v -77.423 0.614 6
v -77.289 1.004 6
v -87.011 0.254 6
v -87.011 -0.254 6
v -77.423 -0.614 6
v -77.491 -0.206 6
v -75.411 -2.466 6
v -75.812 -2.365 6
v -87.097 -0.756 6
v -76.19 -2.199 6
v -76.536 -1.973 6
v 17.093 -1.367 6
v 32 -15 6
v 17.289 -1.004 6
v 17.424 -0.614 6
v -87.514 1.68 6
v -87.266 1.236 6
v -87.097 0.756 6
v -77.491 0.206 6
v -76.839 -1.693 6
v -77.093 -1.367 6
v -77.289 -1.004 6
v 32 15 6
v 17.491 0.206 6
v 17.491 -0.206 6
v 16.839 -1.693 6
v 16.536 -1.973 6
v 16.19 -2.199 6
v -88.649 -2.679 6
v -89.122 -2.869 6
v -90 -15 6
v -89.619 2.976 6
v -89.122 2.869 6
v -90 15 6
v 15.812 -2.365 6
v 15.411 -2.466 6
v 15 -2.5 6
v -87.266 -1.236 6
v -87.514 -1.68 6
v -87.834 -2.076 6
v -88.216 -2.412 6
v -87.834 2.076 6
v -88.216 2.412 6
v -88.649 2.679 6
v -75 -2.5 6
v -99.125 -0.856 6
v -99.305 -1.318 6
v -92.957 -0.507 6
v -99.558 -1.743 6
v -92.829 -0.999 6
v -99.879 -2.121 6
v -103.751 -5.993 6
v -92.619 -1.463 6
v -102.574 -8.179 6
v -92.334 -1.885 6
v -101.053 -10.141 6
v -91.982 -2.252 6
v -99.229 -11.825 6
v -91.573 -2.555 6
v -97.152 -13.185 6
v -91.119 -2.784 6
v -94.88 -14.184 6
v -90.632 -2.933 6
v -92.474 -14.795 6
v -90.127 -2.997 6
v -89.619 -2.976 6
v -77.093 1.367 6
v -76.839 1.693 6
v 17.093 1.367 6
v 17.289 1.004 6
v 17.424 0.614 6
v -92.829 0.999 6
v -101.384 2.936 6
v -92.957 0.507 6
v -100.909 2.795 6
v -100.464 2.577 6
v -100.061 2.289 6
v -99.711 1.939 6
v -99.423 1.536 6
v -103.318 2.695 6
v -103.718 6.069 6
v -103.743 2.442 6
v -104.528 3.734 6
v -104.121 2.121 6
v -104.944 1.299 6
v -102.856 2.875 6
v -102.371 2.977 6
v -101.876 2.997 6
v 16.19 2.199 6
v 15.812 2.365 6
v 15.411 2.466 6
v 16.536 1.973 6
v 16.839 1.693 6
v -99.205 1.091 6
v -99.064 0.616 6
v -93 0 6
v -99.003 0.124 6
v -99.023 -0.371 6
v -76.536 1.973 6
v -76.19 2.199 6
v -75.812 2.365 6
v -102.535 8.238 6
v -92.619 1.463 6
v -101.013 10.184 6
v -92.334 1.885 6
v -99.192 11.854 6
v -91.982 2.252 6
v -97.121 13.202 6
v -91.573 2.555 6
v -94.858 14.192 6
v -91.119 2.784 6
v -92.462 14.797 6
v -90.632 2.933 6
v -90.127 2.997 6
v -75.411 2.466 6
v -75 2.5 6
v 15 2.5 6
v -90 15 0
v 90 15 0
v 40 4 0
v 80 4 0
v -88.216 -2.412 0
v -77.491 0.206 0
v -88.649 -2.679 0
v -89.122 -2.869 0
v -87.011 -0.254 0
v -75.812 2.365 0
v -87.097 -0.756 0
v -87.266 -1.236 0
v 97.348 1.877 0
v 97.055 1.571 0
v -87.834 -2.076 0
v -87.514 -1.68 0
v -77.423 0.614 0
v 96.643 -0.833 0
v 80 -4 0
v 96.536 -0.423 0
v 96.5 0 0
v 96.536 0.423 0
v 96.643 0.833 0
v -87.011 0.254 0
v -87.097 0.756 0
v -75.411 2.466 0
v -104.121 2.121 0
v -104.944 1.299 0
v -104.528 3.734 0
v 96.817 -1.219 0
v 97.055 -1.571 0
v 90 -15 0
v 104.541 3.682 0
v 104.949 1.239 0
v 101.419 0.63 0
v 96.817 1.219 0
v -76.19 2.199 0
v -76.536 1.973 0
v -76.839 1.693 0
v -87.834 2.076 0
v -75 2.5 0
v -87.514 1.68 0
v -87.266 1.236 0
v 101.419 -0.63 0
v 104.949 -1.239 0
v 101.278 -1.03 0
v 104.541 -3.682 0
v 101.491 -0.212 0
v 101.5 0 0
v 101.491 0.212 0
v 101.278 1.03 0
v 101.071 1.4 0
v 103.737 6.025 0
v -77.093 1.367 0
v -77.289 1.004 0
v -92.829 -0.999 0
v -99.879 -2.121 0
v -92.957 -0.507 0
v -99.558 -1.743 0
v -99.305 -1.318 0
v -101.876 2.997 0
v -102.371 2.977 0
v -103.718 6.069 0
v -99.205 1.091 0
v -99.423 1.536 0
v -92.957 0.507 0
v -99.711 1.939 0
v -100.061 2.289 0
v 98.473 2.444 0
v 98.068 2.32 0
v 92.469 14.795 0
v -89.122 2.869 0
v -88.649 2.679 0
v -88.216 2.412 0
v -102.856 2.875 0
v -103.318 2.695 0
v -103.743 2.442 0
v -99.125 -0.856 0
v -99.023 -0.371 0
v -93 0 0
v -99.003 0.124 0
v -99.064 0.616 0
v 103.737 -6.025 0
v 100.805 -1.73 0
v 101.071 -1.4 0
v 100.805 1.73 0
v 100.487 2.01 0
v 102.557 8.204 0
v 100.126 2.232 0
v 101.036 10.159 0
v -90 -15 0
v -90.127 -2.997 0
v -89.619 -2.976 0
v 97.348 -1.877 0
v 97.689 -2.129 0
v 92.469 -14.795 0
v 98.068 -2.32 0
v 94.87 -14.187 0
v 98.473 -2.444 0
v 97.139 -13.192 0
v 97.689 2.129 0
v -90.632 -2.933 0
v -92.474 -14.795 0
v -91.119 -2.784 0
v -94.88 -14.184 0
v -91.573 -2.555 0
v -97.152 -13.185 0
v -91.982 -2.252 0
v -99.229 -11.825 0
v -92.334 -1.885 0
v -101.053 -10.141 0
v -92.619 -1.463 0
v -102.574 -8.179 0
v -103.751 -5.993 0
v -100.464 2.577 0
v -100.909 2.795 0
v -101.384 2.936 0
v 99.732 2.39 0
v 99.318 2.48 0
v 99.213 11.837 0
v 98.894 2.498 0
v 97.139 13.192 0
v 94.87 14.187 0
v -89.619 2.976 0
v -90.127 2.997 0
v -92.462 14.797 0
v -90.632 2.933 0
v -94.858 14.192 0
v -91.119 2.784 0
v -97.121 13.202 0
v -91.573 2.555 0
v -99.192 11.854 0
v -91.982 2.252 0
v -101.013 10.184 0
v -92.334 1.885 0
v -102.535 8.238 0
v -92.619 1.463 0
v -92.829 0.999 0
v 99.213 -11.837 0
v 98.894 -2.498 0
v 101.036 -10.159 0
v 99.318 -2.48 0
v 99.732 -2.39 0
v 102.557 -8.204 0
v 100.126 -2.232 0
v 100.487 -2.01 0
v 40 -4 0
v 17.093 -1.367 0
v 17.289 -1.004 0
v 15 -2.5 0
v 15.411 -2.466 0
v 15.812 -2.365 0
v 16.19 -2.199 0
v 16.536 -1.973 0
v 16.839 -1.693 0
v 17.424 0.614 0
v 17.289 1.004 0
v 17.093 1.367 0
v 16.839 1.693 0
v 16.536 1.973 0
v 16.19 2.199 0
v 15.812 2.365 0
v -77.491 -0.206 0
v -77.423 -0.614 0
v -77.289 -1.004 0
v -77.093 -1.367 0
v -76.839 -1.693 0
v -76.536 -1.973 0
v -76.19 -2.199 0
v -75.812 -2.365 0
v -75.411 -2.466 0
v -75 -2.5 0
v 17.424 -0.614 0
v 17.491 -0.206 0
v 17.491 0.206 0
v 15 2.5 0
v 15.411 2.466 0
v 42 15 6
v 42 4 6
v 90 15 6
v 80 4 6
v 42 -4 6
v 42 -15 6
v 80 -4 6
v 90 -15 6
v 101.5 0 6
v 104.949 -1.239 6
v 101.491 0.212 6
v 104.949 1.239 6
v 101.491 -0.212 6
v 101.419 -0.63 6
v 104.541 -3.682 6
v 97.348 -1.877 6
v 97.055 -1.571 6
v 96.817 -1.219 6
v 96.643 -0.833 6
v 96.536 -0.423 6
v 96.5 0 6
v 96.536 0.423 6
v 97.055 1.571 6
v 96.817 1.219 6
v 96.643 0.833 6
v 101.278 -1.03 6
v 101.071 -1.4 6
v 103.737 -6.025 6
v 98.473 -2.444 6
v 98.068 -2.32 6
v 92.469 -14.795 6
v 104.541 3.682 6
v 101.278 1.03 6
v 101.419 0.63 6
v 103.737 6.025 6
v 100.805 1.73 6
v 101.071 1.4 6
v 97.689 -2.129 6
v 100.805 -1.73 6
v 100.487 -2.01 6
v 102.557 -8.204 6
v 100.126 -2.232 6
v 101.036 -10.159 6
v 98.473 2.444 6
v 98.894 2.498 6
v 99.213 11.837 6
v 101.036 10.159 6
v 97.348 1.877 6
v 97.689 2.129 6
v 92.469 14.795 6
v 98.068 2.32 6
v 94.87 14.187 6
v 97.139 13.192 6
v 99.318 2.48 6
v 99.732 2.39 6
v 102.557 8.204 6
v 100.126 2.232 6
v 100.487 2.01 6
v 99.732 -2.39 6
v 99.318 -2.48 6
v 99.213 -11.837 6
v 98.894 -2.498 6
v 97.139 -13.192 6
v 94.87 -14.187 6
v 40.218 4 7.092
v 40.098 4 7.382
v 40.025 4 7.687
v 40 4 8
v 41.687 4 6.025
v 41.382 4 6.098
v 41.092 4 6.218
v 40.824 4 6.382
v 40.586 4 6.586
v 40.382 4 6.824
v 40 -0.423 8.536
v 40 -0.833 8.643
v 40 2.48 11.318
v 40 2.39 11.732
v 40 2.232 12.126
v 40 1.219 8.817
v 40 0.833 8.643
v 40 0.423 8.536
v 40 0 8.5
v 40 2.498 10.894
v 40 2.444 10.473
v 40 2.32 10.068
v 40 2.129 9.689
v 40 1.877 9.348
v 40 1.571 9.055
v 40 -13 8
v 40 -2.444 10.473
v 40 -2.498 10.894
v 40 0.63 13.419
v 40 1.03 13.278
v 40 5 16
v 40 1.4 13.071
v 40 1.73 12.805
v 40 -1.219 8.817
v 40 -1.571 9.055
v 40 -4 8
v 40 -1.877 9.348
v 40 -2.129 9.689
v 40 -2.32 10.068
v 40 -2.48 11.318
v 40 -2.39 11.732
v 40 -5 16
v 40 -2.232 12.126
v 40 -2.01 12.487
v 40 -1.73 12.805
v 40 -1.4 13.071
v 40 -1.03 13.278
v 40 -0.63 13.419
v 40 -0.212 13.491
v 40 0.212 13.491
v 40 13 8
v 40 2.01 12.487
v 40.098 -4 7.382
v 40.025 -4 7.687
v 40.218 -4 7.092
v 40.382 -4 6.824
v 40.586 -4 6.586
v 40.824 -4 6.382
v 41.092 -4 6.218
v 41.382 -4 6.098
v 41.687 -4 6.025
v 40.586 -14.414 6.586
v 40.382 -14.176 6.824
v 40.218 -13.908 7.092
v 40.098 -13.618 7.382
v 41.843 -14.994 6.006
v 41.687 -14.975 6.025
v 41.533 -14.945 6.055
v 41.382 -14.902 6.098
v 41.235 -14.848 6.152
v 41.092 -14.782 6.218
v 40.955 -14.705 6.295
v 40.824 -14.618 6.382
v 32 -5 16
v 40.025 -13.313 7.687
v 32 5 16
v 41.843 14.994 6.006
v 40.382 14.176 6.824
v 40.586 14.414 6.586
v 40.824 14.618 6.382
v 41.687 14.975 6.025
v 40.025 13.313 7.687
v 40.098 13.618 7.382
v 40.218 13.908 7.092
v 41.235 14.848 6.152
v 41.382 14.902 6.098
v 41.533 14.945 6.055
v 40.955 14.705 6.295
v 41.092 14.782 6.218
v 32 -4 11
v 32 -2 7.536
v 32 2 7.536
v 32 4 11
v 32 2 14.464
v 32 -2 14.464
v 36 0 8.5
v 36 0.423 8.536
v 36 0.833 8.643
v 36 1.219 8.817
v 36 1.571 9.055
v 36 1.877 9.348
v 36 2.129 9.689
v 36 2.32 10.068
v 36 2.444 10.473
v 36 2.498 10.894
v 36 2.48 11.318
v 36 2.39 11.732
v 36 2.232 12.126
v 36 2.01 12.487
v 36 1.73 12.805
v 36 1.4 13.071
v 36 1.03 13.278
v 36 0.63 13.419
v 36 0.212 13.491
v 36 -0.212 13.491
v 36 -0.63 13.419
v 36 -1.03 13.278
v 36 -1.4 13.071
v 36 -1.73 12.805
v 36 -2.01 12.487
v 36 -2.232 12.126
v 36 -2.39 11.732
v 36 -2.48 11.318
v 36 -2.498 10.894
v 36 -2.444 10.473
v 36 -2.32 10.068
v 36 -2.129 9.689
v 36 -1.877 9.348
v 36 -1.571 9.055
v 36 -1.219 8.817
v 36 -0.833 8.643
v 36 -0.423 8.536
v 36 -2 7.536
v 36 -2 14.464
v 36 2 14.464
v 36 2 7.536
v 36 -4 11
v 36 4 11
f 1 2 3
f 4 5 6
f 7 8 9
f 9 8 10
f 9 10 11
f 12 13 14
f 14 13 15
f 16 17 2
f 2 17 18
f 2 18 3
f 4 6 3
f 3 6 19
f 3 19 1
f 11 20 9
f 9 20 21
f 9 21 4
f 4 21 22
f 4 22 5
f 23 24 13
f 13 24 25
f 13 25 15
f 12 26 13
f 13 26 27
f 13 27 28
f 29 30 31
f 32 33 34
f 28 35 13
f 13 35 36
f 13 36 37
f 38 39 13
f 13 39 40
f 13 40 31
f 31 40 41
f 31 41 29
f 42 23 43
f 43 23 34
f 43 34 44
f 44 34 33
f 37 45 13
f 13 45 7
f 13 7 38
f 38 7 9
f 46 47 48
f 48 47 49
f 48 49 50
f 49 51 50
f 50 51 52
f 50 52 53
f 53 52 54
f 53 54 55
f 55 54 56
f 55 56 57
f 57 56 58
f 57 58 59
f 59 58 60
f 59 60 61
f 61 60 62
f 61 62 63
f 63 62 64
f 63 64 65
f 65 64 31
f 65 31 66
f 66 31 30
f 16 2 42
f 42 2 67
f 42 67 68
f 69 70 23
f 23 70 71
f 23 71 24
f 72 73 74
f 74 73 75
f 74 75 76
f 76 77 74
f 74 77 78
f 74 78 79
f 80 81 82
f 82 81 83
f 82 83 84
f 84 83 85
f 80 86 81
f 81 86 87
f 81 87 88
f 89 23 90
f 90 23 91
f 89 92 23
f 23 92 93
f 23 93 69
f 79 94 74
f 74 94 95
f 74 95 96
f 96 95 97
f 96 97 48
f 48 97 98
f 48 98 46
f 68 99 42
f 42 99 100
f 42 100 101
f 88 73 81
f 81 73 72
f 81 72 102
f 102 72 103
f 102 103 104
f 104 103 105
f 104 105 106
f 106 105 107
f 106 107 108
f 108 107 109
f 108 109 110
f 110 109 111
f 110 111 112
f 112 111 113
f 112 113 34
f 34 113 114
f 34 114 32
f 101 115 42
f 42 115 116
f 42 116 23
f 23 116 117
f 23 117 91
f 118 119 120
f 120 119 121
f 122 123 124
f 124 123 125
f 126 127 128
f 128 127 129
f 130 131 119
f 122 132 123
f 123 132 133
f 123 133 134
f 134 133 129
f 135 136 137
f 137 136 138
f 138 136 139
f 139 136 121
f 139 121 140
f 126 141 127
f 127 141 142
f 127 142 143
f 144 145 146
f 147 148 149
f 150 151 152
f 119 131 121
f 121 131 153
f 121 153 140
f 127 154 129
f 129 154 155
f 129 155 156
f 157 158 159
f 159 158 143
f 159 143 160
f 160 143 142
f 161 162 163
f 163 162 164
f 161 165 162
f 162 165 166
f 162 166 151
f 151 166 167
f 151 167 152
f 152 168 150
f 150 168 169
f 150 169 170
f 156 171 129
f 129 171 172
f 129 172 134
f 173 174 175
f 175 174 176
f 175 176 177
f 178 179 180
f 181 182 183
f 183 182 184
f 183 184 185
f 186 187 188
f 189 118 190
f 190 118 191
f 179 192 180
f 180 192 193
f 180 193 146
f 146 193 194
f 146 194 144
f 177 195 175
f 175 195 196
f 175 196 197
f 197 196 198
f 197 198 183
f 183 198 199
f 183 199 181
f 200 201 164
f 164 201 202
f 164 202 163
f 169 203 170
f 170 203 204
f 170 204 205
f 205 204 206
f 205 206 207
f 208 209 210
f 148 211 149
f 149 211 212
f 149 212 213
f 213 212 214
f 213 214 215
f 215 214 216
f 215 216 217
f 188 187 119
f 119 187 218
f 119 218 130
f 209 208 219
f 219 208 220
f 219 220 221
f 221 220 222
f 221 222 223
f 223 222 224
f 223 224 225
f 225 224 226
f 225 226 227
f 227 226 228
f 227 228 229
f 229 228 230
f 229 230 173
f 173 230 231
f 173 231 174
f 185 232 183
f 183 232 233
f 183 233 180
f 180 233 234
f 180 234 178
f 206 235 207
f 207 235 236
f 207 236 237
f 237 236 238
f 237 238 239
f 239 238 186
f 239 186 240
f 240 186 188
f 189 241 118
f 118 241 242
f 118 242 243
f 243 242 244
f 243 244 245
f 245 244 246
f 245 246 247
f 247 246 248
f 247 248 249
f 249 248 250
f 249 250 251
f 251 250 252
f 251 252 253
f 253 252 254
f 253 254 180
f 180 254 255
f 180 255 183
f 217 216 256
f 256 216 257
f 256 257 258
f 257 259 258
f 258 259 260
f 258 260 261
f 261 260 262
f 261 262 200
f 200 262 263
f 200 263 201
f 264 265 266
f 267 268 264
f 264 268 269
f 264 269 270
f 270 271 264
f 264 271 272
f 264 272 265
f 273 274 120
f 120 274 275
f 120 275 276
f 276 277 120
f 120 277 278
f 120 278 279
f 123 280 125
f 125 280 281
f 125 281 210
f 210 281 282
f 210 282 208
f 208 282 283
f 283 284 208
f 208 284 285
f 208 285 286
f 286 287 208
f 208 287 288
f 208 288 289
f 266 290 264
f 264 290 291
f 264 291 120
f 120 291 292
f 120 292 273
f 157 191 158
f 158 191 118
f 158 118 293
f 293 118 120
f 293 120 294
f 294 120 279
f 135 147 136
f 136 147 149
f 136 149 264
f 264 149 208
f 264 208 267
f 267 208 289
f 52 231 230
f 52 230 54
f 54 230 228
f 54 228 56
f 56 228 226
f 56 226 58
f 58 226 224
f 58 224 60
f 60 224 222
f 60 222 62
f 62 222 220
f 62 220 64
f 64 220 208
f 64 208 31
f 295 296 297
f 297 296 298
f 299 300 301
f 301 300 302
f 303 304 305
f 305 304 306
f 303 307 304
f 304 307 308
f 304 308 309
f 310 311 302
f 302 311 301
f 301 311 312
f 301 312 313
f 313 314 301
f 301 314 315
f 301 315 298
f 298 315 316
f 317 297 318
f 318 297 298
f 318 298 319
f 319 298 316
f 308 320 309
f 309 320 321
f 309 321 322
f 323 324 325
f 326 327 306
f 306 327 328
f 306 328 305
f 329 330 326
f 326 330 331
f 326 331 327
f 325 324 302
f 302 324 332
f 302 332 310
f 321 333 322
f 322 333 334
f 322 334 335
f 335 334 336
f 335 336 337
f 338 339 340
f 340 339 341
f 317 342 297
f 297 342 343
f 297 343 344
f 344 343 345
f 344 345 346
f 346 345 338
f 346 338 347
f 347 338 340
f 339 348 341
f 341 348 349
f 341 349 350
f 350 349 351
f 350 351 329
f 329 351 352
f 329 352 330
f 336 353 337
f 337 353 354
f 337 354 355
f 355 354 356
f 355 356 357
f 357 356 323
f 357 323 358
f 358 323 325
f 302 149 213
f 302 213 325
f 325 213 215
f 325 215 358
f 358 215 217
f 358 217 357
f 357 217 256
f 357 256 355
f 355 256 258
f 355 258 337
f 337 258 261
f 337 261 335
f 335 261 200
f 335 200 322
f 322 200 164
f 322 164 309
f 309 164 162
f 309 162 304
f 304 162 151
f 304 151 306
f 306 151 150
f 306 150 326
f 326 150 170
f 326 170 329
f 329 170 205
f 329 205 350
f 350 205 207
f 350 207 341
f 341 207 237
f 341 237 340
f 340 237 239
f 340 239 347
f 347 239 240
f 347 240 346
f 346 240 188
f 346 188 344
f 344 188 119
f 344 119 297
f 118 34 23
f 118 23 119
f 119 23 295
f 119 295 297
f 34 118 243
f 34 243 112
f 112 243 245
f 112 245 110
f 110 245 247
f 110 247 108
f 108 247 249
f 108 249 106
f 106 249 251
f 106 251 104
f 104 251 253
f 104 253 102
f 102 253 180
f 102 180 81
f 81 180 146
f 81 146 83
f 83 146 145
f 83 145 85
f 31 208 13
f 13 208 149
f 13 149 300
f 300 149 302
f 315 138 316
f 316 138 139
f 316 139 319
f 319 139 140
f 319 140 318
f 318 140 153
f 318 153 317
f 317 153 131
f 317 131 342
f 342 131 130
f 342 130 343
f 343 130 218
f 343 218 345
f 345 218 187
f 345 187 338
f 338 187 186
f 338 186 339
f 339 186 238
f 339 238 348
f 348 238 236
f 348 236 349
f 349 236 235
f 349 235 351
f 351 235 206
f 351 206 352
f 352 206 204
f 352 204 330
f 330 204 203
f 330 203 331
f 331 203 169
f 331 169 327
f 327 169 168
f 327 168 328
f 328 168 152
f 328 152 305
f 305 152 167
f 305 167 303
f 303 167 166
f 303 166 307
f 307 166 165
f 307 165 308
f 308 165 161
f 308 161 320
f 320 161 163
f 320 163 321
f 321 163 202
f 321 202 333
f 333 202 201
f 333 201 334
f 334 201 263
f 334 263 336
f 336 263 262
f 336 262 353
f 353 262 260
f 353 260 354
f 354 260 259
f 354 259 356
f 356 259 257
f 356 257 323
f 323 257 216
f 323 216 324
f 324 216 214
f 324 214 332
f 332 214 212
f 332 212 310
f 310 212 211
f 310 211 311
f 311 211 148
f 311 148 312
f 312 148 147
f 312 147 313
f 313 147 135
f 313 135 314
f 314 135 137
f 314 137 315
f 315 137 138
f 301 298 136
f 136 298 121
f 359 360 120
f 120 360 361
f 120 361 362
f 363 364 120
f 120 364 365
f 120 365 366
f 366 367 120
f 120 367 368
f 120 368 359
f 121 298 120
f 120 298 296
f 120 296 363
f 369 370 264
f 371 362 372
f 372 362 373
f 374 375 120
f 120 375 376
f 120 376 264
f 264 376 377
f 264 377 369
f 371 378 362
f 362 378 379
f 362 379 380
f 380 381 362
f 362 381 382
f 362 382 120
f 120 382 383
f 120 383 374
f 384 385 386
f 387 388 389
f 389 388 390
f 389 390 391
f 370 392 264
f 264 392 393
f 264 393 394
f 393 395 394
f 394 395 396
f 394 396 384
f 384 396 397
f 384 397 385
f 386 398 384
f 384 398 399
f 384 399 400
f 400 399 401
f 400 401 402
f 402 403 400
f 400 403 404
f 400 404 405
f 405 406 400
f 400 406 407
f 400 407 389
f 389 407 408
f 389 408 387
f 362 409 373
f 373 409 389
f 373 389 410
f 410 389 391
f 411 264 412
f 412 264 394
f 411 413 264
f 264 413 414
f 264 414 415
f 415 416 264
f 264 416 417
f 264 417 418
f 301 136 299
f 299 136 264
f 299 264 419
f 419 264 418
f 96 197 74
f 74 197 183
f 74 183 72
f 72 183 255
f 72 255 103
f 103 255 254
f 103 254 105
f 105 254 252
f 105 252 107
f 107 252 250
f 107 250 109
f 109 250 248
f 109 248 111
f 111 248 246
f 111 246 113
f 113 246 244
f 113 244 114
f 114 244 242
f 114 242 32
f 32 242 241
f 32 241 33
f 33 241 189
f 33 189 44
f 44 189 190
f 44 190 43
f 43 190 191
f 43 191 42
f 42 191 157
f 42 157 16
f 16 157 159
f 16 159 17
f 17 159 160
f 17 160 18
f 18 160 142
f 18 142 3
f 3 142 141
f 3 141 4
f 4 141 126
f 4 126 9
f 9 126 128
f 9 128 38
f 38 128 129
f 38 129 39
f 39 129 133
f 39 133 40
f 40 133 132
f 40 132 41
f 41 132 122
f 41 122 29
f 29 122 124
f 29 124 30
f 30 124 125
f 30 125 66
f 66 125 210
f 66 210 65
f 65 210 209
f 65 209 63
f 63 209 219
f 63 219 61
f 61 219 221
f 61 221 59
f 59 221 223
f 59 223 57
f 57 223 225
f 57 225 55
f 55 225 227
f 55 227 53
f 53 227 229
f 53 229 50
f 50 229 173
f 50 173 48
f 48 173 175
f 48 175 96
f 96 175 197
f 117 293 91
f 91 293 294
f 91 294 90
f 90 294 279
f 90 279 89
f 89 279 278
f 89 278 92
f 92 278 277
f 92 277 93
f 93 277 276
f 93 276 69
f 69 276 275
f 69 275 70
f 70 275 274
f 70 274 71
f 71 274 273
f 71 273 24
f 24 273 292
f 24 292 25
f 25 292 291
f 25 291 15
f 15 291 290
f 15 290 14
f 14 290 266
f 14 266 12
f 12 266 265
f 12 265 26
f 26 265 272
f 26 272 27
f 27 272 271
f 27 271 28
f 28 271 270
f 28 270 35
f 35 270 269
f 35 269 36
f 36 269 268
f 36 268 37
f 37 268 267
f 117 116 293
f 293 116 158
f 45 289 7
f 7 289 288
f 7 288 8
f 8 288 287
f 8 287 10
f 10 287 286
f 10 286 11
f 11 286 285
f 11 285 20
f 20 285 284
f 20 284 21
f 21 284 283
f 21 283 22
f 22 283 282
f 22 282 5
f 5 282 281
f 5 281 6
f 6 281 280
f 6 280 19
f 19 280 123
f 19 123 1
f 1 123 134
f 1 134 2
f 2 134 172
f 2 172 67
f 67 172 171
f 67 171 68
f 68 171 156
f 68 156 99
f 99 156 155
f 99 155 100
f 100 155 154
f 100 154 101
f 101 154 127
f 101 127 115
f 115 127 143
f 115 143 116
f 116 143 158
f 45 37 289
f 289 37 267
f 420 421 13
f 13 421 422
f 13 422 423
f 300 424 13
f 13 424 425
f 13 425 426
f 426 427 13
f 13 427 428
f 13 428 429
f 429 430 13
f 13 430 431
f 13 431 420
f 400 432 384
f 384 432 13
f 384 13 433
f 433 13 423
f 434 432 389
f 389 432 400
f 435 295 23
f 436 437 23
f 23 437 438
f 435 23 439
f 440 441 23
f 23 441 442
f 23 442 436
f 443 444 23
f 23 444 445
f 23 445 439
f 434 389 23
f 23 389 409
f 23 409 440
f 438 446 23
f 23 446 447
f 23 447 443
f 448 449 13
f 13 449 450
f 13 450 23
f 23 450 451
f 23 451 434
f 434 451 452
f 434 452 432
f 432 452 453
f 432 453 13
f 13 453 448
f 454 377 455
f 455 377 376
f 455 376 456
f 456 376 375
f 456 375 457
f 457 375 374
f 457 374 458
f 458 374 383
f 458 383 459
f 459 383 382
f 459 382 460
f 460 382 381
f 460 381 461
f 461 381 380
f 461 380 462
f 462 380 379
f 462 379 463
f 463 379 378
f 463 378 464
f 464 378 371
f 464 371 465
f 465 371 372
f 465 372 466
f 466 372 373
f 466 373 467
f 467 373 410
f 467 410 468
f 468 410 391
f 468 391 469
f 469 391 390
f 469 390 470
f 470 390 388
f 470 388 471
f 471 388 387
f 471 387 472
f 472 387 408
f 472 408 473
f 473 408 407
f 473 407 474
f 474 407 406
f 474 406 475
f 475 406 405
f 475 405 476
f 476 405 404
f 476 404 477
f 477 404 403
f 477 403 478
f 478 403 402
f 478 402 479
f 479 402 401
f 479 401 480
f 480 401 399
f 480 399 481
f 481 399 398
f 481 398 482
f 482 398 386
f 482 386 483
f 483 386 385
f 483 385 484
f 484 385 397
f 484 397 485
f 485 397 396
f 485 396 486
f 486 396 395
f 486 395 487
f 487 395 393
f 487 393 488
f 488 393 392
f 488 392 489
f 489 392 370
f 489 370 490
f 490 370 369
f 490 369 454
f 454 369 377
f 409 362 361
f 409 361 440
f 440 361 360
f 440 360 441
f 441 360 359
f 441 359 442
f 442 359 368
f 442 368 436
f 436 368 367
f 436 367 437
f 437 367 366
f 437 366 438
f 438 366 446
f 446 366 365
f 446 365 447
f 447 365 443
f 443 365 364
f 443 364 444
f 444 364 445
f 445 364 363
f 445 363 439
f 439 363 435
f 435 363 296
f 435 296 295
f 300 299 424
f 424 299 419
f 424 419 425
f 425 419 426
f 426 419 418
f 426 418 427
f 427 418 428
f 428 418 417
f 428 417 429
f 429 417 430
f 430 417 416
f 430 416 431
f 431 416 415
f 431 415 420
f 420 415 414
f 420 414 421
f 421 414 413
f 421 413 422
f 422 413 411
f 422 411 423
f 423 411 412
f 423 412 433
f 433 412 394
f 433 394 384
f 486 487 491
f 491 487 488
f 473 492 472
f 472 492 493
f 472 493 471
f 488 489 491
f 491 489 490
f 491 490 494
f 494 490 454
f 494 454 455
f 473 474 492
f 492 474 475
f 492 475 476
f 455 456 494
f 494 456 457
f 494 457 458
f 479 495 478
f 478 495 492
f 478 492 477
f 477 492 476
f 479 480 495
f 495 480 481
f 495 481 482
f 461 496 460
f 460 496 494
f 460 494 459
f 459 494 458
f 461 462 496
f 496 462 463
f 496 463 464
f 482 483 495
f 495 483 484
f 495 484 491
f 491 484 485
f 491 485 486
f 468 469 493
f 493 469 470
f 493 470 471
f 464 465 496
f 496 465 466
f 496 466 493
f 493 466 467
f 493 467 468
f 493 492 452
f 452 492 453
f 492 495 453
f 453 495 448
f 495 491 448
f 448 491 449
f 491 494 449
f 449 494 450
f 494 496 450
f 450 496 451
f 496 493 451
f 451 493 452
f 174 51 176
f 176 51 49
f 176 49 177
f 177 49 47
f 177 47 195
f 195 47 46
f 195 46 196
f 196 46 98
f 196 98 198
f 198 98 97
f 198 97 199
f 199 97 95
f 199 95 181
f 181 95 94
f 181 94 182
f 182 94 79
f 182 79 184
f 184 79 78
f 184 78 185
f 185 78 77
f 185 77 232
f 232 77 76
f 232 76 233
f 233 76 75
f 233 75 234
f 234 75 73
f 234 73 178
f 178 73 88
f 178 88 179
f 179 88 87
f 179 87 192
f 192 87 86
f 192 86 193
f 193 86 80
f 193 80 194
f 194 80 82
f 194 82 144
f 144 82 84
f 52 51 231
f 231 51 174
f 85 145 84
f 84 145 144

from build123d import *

# Parameters (mm, degrees)
ESQUISSE1_R             = 2.5
ESQUISSE1_R_2           = 3
ESQUISSE1_W             = 40
ESQUISSE1_H             = 8
BOSS_EXTRU_1_DEPTH      = 6
ESQUISSE2_R             = 2.5
BOSS_EXTRU_2_DEPTH      = 8
CONG_2_R                = 2
ENL_V_MAT_EXTRU_1_DEPTH = 4
ENL_V_START             = -10
ENL_V_MAT_EXTRU_4_DEPTH = 10


with BuildPart() as part:
    # Esquisse1 → Boss.-Extru.1 (new body)
    with BuildSketch(Plane.XY):
        with BuildLine():
            Line((90, -15), (-90, -15))
            ThreePointArc((-90, -15), (-105, 0), (-90, 15))
            Line((-90, 15), (90, 15))
            ThreePointArc((90, 15), (105, 0), (90, -15))
        make_face()
        with Locations((99, 0)):
            Circle(ESQUISSE1_R, mode=Mode.SUBTRACT)
        with Locations(Location((-90, 0, 0), (0, 0, 180))):
            Circle(ESQUISSE1_R_2, mode=Mode.SUBTRACT)
        with BuildLine():
            Line((15, -2.5), (-75, -2.5))
            ThreePointArc((-75, -2.5), (-77.5, 0), (-75, 2.5))
            Line((-75, 2.5), (15, 2.5))
            ThreePointArc((15, 2.5), (17.5, 0), (15, -2.5))
        make_face(mode=Mode.SUBTRACT)
        with Locations((60, 0)):
            Rectangle(ESQUISSE1_W, ESQUISSE1_H, mode=Mode.SUBTRACT)
    extrude(amount=BOSS_EXTRU_1_DEPTH)

    # Esquisse2 → Boss.-Extru.2 (add)
    with BuildSketch(Plane(origin=(40, 0, 0), x_dir=(0, 0, -1), z_dir=(1, 0, 0))):
        Polygon((-16, 5), (-16, -5), (-6, -15), (-6, -5), (-6, 5), (-6, 15), align=None)
        with Locations((-11, 0)):
            Circle(ESQUISSE2_R, mode=Mode.SUBTRACT)
    extrude(amount=-BOSS_EXTRU_2_DEPTH)

    # Congé2
    cong_2_edges = [part.edges().sort_by_distance(p)[0] for p in [
        (40, 9.5, 6),
        (40, -9.5, 6),
    ]]
    fillet(cong_2_edges, radius=CONG_2_R)

    # Esquisse3 → Enlèv. mat.-Extru.1 (cut)
    with BuildSketch(Plane.ZY.offset(-32)):
        Polygon((11, 4), (14.464101615, 2), (14.464101615, -2), (11, -4), (7.535898385, -2), (7.535898385, 2), align=None)
    extrude(amount=-ENL_V_MAT_EXTRU_1_DEPTH, mode=Mode.SUBTRACT)

    # Esquisse4 → Enlèv. mat.-Extru.4 (cut)
    with BuildSketch(Plane.XY.offset(6).offset(ENL_V_START)):
        with BuildLine():
            ThreePointArc((-105, -2.6e-08), (-103.148050285, -2.771638603), (-99.878679656, -2.121320344))
            Line((-99.878679656, -2.121320344), (-104.121320344, 2.121320344))
            ThreePointArc((-104.121320344, 2.121320344), (-104.771638603, 1.148050285), (-105, -2.6e-08))
        make_face()
        with BuildLine():
            Line((-104.121320344, 2.121320344), (-99.878679656, -2.121320344))
            ThreePointArc((-99.878679656, -2.121320344), (-99.228361402, -1.148050297), (-99, 0))
            ThreePointArc((-99, 0), (-100.851949703, 2.771638598), (-104.121320344, 2.121320344))
        make_face()
        with BuildLine():
            ThreePointArc((-105, -2.6e-08), (-104.771638603, 1.148050285), (-104.121320344, 2.121320344))
            Line((-104.121320344, 2.121320344), (-104.94364809, 1.298992597))
            ThreePointArc((-104.94364809, 1.298992597), (-104.985905401, 0.650107152), (-105, -2.6e-08))
        make_face()
        with BuildLine():
            Line((-103.750652313, -5.993293), (-99.878679656, -2.121320344))
            ThreePointArc((-99.878679656, -2.121320344), (-103.148050285, -2.771638603), (-105, -2.6e-08))
            ThreePointArc((-105, -2.6e-08), (-104.684341738, -3.061063171), (-103.750652313, -5.993293))
        make_face()
        with BuildLine():
            ThreePointArc((-105, -2.6e-08), (-103.148050285, -2.771638603), (-99.878679656, -2.121320344))
            Line((-99.878679656, -2.121320344), (-104.121320344, 2.121320344))
            ThreePointArc((-104.121320344, 2.121320344), (-104.771638603, 1.148050285), (-105, -2.6e-08))
        make_face()
        with BuildLine():
            Line((-104.121320344, 2.121320344), (-99.878679656, -2.121320344))
            ThreePointArc((-99.878679656, -2.121320344), (-99.228361402, -1.148050297), (-99, 0))
            ThreePointArc((-99, 0), (-100.851949703, 2.771638598), (-104.121320344, 2.121320344))
        make_face()
    extrude(amount=ENL_V_MAT_EXTRU_4_DEPTH, mode=Mode.SUBTRACT)


solid = part.part
